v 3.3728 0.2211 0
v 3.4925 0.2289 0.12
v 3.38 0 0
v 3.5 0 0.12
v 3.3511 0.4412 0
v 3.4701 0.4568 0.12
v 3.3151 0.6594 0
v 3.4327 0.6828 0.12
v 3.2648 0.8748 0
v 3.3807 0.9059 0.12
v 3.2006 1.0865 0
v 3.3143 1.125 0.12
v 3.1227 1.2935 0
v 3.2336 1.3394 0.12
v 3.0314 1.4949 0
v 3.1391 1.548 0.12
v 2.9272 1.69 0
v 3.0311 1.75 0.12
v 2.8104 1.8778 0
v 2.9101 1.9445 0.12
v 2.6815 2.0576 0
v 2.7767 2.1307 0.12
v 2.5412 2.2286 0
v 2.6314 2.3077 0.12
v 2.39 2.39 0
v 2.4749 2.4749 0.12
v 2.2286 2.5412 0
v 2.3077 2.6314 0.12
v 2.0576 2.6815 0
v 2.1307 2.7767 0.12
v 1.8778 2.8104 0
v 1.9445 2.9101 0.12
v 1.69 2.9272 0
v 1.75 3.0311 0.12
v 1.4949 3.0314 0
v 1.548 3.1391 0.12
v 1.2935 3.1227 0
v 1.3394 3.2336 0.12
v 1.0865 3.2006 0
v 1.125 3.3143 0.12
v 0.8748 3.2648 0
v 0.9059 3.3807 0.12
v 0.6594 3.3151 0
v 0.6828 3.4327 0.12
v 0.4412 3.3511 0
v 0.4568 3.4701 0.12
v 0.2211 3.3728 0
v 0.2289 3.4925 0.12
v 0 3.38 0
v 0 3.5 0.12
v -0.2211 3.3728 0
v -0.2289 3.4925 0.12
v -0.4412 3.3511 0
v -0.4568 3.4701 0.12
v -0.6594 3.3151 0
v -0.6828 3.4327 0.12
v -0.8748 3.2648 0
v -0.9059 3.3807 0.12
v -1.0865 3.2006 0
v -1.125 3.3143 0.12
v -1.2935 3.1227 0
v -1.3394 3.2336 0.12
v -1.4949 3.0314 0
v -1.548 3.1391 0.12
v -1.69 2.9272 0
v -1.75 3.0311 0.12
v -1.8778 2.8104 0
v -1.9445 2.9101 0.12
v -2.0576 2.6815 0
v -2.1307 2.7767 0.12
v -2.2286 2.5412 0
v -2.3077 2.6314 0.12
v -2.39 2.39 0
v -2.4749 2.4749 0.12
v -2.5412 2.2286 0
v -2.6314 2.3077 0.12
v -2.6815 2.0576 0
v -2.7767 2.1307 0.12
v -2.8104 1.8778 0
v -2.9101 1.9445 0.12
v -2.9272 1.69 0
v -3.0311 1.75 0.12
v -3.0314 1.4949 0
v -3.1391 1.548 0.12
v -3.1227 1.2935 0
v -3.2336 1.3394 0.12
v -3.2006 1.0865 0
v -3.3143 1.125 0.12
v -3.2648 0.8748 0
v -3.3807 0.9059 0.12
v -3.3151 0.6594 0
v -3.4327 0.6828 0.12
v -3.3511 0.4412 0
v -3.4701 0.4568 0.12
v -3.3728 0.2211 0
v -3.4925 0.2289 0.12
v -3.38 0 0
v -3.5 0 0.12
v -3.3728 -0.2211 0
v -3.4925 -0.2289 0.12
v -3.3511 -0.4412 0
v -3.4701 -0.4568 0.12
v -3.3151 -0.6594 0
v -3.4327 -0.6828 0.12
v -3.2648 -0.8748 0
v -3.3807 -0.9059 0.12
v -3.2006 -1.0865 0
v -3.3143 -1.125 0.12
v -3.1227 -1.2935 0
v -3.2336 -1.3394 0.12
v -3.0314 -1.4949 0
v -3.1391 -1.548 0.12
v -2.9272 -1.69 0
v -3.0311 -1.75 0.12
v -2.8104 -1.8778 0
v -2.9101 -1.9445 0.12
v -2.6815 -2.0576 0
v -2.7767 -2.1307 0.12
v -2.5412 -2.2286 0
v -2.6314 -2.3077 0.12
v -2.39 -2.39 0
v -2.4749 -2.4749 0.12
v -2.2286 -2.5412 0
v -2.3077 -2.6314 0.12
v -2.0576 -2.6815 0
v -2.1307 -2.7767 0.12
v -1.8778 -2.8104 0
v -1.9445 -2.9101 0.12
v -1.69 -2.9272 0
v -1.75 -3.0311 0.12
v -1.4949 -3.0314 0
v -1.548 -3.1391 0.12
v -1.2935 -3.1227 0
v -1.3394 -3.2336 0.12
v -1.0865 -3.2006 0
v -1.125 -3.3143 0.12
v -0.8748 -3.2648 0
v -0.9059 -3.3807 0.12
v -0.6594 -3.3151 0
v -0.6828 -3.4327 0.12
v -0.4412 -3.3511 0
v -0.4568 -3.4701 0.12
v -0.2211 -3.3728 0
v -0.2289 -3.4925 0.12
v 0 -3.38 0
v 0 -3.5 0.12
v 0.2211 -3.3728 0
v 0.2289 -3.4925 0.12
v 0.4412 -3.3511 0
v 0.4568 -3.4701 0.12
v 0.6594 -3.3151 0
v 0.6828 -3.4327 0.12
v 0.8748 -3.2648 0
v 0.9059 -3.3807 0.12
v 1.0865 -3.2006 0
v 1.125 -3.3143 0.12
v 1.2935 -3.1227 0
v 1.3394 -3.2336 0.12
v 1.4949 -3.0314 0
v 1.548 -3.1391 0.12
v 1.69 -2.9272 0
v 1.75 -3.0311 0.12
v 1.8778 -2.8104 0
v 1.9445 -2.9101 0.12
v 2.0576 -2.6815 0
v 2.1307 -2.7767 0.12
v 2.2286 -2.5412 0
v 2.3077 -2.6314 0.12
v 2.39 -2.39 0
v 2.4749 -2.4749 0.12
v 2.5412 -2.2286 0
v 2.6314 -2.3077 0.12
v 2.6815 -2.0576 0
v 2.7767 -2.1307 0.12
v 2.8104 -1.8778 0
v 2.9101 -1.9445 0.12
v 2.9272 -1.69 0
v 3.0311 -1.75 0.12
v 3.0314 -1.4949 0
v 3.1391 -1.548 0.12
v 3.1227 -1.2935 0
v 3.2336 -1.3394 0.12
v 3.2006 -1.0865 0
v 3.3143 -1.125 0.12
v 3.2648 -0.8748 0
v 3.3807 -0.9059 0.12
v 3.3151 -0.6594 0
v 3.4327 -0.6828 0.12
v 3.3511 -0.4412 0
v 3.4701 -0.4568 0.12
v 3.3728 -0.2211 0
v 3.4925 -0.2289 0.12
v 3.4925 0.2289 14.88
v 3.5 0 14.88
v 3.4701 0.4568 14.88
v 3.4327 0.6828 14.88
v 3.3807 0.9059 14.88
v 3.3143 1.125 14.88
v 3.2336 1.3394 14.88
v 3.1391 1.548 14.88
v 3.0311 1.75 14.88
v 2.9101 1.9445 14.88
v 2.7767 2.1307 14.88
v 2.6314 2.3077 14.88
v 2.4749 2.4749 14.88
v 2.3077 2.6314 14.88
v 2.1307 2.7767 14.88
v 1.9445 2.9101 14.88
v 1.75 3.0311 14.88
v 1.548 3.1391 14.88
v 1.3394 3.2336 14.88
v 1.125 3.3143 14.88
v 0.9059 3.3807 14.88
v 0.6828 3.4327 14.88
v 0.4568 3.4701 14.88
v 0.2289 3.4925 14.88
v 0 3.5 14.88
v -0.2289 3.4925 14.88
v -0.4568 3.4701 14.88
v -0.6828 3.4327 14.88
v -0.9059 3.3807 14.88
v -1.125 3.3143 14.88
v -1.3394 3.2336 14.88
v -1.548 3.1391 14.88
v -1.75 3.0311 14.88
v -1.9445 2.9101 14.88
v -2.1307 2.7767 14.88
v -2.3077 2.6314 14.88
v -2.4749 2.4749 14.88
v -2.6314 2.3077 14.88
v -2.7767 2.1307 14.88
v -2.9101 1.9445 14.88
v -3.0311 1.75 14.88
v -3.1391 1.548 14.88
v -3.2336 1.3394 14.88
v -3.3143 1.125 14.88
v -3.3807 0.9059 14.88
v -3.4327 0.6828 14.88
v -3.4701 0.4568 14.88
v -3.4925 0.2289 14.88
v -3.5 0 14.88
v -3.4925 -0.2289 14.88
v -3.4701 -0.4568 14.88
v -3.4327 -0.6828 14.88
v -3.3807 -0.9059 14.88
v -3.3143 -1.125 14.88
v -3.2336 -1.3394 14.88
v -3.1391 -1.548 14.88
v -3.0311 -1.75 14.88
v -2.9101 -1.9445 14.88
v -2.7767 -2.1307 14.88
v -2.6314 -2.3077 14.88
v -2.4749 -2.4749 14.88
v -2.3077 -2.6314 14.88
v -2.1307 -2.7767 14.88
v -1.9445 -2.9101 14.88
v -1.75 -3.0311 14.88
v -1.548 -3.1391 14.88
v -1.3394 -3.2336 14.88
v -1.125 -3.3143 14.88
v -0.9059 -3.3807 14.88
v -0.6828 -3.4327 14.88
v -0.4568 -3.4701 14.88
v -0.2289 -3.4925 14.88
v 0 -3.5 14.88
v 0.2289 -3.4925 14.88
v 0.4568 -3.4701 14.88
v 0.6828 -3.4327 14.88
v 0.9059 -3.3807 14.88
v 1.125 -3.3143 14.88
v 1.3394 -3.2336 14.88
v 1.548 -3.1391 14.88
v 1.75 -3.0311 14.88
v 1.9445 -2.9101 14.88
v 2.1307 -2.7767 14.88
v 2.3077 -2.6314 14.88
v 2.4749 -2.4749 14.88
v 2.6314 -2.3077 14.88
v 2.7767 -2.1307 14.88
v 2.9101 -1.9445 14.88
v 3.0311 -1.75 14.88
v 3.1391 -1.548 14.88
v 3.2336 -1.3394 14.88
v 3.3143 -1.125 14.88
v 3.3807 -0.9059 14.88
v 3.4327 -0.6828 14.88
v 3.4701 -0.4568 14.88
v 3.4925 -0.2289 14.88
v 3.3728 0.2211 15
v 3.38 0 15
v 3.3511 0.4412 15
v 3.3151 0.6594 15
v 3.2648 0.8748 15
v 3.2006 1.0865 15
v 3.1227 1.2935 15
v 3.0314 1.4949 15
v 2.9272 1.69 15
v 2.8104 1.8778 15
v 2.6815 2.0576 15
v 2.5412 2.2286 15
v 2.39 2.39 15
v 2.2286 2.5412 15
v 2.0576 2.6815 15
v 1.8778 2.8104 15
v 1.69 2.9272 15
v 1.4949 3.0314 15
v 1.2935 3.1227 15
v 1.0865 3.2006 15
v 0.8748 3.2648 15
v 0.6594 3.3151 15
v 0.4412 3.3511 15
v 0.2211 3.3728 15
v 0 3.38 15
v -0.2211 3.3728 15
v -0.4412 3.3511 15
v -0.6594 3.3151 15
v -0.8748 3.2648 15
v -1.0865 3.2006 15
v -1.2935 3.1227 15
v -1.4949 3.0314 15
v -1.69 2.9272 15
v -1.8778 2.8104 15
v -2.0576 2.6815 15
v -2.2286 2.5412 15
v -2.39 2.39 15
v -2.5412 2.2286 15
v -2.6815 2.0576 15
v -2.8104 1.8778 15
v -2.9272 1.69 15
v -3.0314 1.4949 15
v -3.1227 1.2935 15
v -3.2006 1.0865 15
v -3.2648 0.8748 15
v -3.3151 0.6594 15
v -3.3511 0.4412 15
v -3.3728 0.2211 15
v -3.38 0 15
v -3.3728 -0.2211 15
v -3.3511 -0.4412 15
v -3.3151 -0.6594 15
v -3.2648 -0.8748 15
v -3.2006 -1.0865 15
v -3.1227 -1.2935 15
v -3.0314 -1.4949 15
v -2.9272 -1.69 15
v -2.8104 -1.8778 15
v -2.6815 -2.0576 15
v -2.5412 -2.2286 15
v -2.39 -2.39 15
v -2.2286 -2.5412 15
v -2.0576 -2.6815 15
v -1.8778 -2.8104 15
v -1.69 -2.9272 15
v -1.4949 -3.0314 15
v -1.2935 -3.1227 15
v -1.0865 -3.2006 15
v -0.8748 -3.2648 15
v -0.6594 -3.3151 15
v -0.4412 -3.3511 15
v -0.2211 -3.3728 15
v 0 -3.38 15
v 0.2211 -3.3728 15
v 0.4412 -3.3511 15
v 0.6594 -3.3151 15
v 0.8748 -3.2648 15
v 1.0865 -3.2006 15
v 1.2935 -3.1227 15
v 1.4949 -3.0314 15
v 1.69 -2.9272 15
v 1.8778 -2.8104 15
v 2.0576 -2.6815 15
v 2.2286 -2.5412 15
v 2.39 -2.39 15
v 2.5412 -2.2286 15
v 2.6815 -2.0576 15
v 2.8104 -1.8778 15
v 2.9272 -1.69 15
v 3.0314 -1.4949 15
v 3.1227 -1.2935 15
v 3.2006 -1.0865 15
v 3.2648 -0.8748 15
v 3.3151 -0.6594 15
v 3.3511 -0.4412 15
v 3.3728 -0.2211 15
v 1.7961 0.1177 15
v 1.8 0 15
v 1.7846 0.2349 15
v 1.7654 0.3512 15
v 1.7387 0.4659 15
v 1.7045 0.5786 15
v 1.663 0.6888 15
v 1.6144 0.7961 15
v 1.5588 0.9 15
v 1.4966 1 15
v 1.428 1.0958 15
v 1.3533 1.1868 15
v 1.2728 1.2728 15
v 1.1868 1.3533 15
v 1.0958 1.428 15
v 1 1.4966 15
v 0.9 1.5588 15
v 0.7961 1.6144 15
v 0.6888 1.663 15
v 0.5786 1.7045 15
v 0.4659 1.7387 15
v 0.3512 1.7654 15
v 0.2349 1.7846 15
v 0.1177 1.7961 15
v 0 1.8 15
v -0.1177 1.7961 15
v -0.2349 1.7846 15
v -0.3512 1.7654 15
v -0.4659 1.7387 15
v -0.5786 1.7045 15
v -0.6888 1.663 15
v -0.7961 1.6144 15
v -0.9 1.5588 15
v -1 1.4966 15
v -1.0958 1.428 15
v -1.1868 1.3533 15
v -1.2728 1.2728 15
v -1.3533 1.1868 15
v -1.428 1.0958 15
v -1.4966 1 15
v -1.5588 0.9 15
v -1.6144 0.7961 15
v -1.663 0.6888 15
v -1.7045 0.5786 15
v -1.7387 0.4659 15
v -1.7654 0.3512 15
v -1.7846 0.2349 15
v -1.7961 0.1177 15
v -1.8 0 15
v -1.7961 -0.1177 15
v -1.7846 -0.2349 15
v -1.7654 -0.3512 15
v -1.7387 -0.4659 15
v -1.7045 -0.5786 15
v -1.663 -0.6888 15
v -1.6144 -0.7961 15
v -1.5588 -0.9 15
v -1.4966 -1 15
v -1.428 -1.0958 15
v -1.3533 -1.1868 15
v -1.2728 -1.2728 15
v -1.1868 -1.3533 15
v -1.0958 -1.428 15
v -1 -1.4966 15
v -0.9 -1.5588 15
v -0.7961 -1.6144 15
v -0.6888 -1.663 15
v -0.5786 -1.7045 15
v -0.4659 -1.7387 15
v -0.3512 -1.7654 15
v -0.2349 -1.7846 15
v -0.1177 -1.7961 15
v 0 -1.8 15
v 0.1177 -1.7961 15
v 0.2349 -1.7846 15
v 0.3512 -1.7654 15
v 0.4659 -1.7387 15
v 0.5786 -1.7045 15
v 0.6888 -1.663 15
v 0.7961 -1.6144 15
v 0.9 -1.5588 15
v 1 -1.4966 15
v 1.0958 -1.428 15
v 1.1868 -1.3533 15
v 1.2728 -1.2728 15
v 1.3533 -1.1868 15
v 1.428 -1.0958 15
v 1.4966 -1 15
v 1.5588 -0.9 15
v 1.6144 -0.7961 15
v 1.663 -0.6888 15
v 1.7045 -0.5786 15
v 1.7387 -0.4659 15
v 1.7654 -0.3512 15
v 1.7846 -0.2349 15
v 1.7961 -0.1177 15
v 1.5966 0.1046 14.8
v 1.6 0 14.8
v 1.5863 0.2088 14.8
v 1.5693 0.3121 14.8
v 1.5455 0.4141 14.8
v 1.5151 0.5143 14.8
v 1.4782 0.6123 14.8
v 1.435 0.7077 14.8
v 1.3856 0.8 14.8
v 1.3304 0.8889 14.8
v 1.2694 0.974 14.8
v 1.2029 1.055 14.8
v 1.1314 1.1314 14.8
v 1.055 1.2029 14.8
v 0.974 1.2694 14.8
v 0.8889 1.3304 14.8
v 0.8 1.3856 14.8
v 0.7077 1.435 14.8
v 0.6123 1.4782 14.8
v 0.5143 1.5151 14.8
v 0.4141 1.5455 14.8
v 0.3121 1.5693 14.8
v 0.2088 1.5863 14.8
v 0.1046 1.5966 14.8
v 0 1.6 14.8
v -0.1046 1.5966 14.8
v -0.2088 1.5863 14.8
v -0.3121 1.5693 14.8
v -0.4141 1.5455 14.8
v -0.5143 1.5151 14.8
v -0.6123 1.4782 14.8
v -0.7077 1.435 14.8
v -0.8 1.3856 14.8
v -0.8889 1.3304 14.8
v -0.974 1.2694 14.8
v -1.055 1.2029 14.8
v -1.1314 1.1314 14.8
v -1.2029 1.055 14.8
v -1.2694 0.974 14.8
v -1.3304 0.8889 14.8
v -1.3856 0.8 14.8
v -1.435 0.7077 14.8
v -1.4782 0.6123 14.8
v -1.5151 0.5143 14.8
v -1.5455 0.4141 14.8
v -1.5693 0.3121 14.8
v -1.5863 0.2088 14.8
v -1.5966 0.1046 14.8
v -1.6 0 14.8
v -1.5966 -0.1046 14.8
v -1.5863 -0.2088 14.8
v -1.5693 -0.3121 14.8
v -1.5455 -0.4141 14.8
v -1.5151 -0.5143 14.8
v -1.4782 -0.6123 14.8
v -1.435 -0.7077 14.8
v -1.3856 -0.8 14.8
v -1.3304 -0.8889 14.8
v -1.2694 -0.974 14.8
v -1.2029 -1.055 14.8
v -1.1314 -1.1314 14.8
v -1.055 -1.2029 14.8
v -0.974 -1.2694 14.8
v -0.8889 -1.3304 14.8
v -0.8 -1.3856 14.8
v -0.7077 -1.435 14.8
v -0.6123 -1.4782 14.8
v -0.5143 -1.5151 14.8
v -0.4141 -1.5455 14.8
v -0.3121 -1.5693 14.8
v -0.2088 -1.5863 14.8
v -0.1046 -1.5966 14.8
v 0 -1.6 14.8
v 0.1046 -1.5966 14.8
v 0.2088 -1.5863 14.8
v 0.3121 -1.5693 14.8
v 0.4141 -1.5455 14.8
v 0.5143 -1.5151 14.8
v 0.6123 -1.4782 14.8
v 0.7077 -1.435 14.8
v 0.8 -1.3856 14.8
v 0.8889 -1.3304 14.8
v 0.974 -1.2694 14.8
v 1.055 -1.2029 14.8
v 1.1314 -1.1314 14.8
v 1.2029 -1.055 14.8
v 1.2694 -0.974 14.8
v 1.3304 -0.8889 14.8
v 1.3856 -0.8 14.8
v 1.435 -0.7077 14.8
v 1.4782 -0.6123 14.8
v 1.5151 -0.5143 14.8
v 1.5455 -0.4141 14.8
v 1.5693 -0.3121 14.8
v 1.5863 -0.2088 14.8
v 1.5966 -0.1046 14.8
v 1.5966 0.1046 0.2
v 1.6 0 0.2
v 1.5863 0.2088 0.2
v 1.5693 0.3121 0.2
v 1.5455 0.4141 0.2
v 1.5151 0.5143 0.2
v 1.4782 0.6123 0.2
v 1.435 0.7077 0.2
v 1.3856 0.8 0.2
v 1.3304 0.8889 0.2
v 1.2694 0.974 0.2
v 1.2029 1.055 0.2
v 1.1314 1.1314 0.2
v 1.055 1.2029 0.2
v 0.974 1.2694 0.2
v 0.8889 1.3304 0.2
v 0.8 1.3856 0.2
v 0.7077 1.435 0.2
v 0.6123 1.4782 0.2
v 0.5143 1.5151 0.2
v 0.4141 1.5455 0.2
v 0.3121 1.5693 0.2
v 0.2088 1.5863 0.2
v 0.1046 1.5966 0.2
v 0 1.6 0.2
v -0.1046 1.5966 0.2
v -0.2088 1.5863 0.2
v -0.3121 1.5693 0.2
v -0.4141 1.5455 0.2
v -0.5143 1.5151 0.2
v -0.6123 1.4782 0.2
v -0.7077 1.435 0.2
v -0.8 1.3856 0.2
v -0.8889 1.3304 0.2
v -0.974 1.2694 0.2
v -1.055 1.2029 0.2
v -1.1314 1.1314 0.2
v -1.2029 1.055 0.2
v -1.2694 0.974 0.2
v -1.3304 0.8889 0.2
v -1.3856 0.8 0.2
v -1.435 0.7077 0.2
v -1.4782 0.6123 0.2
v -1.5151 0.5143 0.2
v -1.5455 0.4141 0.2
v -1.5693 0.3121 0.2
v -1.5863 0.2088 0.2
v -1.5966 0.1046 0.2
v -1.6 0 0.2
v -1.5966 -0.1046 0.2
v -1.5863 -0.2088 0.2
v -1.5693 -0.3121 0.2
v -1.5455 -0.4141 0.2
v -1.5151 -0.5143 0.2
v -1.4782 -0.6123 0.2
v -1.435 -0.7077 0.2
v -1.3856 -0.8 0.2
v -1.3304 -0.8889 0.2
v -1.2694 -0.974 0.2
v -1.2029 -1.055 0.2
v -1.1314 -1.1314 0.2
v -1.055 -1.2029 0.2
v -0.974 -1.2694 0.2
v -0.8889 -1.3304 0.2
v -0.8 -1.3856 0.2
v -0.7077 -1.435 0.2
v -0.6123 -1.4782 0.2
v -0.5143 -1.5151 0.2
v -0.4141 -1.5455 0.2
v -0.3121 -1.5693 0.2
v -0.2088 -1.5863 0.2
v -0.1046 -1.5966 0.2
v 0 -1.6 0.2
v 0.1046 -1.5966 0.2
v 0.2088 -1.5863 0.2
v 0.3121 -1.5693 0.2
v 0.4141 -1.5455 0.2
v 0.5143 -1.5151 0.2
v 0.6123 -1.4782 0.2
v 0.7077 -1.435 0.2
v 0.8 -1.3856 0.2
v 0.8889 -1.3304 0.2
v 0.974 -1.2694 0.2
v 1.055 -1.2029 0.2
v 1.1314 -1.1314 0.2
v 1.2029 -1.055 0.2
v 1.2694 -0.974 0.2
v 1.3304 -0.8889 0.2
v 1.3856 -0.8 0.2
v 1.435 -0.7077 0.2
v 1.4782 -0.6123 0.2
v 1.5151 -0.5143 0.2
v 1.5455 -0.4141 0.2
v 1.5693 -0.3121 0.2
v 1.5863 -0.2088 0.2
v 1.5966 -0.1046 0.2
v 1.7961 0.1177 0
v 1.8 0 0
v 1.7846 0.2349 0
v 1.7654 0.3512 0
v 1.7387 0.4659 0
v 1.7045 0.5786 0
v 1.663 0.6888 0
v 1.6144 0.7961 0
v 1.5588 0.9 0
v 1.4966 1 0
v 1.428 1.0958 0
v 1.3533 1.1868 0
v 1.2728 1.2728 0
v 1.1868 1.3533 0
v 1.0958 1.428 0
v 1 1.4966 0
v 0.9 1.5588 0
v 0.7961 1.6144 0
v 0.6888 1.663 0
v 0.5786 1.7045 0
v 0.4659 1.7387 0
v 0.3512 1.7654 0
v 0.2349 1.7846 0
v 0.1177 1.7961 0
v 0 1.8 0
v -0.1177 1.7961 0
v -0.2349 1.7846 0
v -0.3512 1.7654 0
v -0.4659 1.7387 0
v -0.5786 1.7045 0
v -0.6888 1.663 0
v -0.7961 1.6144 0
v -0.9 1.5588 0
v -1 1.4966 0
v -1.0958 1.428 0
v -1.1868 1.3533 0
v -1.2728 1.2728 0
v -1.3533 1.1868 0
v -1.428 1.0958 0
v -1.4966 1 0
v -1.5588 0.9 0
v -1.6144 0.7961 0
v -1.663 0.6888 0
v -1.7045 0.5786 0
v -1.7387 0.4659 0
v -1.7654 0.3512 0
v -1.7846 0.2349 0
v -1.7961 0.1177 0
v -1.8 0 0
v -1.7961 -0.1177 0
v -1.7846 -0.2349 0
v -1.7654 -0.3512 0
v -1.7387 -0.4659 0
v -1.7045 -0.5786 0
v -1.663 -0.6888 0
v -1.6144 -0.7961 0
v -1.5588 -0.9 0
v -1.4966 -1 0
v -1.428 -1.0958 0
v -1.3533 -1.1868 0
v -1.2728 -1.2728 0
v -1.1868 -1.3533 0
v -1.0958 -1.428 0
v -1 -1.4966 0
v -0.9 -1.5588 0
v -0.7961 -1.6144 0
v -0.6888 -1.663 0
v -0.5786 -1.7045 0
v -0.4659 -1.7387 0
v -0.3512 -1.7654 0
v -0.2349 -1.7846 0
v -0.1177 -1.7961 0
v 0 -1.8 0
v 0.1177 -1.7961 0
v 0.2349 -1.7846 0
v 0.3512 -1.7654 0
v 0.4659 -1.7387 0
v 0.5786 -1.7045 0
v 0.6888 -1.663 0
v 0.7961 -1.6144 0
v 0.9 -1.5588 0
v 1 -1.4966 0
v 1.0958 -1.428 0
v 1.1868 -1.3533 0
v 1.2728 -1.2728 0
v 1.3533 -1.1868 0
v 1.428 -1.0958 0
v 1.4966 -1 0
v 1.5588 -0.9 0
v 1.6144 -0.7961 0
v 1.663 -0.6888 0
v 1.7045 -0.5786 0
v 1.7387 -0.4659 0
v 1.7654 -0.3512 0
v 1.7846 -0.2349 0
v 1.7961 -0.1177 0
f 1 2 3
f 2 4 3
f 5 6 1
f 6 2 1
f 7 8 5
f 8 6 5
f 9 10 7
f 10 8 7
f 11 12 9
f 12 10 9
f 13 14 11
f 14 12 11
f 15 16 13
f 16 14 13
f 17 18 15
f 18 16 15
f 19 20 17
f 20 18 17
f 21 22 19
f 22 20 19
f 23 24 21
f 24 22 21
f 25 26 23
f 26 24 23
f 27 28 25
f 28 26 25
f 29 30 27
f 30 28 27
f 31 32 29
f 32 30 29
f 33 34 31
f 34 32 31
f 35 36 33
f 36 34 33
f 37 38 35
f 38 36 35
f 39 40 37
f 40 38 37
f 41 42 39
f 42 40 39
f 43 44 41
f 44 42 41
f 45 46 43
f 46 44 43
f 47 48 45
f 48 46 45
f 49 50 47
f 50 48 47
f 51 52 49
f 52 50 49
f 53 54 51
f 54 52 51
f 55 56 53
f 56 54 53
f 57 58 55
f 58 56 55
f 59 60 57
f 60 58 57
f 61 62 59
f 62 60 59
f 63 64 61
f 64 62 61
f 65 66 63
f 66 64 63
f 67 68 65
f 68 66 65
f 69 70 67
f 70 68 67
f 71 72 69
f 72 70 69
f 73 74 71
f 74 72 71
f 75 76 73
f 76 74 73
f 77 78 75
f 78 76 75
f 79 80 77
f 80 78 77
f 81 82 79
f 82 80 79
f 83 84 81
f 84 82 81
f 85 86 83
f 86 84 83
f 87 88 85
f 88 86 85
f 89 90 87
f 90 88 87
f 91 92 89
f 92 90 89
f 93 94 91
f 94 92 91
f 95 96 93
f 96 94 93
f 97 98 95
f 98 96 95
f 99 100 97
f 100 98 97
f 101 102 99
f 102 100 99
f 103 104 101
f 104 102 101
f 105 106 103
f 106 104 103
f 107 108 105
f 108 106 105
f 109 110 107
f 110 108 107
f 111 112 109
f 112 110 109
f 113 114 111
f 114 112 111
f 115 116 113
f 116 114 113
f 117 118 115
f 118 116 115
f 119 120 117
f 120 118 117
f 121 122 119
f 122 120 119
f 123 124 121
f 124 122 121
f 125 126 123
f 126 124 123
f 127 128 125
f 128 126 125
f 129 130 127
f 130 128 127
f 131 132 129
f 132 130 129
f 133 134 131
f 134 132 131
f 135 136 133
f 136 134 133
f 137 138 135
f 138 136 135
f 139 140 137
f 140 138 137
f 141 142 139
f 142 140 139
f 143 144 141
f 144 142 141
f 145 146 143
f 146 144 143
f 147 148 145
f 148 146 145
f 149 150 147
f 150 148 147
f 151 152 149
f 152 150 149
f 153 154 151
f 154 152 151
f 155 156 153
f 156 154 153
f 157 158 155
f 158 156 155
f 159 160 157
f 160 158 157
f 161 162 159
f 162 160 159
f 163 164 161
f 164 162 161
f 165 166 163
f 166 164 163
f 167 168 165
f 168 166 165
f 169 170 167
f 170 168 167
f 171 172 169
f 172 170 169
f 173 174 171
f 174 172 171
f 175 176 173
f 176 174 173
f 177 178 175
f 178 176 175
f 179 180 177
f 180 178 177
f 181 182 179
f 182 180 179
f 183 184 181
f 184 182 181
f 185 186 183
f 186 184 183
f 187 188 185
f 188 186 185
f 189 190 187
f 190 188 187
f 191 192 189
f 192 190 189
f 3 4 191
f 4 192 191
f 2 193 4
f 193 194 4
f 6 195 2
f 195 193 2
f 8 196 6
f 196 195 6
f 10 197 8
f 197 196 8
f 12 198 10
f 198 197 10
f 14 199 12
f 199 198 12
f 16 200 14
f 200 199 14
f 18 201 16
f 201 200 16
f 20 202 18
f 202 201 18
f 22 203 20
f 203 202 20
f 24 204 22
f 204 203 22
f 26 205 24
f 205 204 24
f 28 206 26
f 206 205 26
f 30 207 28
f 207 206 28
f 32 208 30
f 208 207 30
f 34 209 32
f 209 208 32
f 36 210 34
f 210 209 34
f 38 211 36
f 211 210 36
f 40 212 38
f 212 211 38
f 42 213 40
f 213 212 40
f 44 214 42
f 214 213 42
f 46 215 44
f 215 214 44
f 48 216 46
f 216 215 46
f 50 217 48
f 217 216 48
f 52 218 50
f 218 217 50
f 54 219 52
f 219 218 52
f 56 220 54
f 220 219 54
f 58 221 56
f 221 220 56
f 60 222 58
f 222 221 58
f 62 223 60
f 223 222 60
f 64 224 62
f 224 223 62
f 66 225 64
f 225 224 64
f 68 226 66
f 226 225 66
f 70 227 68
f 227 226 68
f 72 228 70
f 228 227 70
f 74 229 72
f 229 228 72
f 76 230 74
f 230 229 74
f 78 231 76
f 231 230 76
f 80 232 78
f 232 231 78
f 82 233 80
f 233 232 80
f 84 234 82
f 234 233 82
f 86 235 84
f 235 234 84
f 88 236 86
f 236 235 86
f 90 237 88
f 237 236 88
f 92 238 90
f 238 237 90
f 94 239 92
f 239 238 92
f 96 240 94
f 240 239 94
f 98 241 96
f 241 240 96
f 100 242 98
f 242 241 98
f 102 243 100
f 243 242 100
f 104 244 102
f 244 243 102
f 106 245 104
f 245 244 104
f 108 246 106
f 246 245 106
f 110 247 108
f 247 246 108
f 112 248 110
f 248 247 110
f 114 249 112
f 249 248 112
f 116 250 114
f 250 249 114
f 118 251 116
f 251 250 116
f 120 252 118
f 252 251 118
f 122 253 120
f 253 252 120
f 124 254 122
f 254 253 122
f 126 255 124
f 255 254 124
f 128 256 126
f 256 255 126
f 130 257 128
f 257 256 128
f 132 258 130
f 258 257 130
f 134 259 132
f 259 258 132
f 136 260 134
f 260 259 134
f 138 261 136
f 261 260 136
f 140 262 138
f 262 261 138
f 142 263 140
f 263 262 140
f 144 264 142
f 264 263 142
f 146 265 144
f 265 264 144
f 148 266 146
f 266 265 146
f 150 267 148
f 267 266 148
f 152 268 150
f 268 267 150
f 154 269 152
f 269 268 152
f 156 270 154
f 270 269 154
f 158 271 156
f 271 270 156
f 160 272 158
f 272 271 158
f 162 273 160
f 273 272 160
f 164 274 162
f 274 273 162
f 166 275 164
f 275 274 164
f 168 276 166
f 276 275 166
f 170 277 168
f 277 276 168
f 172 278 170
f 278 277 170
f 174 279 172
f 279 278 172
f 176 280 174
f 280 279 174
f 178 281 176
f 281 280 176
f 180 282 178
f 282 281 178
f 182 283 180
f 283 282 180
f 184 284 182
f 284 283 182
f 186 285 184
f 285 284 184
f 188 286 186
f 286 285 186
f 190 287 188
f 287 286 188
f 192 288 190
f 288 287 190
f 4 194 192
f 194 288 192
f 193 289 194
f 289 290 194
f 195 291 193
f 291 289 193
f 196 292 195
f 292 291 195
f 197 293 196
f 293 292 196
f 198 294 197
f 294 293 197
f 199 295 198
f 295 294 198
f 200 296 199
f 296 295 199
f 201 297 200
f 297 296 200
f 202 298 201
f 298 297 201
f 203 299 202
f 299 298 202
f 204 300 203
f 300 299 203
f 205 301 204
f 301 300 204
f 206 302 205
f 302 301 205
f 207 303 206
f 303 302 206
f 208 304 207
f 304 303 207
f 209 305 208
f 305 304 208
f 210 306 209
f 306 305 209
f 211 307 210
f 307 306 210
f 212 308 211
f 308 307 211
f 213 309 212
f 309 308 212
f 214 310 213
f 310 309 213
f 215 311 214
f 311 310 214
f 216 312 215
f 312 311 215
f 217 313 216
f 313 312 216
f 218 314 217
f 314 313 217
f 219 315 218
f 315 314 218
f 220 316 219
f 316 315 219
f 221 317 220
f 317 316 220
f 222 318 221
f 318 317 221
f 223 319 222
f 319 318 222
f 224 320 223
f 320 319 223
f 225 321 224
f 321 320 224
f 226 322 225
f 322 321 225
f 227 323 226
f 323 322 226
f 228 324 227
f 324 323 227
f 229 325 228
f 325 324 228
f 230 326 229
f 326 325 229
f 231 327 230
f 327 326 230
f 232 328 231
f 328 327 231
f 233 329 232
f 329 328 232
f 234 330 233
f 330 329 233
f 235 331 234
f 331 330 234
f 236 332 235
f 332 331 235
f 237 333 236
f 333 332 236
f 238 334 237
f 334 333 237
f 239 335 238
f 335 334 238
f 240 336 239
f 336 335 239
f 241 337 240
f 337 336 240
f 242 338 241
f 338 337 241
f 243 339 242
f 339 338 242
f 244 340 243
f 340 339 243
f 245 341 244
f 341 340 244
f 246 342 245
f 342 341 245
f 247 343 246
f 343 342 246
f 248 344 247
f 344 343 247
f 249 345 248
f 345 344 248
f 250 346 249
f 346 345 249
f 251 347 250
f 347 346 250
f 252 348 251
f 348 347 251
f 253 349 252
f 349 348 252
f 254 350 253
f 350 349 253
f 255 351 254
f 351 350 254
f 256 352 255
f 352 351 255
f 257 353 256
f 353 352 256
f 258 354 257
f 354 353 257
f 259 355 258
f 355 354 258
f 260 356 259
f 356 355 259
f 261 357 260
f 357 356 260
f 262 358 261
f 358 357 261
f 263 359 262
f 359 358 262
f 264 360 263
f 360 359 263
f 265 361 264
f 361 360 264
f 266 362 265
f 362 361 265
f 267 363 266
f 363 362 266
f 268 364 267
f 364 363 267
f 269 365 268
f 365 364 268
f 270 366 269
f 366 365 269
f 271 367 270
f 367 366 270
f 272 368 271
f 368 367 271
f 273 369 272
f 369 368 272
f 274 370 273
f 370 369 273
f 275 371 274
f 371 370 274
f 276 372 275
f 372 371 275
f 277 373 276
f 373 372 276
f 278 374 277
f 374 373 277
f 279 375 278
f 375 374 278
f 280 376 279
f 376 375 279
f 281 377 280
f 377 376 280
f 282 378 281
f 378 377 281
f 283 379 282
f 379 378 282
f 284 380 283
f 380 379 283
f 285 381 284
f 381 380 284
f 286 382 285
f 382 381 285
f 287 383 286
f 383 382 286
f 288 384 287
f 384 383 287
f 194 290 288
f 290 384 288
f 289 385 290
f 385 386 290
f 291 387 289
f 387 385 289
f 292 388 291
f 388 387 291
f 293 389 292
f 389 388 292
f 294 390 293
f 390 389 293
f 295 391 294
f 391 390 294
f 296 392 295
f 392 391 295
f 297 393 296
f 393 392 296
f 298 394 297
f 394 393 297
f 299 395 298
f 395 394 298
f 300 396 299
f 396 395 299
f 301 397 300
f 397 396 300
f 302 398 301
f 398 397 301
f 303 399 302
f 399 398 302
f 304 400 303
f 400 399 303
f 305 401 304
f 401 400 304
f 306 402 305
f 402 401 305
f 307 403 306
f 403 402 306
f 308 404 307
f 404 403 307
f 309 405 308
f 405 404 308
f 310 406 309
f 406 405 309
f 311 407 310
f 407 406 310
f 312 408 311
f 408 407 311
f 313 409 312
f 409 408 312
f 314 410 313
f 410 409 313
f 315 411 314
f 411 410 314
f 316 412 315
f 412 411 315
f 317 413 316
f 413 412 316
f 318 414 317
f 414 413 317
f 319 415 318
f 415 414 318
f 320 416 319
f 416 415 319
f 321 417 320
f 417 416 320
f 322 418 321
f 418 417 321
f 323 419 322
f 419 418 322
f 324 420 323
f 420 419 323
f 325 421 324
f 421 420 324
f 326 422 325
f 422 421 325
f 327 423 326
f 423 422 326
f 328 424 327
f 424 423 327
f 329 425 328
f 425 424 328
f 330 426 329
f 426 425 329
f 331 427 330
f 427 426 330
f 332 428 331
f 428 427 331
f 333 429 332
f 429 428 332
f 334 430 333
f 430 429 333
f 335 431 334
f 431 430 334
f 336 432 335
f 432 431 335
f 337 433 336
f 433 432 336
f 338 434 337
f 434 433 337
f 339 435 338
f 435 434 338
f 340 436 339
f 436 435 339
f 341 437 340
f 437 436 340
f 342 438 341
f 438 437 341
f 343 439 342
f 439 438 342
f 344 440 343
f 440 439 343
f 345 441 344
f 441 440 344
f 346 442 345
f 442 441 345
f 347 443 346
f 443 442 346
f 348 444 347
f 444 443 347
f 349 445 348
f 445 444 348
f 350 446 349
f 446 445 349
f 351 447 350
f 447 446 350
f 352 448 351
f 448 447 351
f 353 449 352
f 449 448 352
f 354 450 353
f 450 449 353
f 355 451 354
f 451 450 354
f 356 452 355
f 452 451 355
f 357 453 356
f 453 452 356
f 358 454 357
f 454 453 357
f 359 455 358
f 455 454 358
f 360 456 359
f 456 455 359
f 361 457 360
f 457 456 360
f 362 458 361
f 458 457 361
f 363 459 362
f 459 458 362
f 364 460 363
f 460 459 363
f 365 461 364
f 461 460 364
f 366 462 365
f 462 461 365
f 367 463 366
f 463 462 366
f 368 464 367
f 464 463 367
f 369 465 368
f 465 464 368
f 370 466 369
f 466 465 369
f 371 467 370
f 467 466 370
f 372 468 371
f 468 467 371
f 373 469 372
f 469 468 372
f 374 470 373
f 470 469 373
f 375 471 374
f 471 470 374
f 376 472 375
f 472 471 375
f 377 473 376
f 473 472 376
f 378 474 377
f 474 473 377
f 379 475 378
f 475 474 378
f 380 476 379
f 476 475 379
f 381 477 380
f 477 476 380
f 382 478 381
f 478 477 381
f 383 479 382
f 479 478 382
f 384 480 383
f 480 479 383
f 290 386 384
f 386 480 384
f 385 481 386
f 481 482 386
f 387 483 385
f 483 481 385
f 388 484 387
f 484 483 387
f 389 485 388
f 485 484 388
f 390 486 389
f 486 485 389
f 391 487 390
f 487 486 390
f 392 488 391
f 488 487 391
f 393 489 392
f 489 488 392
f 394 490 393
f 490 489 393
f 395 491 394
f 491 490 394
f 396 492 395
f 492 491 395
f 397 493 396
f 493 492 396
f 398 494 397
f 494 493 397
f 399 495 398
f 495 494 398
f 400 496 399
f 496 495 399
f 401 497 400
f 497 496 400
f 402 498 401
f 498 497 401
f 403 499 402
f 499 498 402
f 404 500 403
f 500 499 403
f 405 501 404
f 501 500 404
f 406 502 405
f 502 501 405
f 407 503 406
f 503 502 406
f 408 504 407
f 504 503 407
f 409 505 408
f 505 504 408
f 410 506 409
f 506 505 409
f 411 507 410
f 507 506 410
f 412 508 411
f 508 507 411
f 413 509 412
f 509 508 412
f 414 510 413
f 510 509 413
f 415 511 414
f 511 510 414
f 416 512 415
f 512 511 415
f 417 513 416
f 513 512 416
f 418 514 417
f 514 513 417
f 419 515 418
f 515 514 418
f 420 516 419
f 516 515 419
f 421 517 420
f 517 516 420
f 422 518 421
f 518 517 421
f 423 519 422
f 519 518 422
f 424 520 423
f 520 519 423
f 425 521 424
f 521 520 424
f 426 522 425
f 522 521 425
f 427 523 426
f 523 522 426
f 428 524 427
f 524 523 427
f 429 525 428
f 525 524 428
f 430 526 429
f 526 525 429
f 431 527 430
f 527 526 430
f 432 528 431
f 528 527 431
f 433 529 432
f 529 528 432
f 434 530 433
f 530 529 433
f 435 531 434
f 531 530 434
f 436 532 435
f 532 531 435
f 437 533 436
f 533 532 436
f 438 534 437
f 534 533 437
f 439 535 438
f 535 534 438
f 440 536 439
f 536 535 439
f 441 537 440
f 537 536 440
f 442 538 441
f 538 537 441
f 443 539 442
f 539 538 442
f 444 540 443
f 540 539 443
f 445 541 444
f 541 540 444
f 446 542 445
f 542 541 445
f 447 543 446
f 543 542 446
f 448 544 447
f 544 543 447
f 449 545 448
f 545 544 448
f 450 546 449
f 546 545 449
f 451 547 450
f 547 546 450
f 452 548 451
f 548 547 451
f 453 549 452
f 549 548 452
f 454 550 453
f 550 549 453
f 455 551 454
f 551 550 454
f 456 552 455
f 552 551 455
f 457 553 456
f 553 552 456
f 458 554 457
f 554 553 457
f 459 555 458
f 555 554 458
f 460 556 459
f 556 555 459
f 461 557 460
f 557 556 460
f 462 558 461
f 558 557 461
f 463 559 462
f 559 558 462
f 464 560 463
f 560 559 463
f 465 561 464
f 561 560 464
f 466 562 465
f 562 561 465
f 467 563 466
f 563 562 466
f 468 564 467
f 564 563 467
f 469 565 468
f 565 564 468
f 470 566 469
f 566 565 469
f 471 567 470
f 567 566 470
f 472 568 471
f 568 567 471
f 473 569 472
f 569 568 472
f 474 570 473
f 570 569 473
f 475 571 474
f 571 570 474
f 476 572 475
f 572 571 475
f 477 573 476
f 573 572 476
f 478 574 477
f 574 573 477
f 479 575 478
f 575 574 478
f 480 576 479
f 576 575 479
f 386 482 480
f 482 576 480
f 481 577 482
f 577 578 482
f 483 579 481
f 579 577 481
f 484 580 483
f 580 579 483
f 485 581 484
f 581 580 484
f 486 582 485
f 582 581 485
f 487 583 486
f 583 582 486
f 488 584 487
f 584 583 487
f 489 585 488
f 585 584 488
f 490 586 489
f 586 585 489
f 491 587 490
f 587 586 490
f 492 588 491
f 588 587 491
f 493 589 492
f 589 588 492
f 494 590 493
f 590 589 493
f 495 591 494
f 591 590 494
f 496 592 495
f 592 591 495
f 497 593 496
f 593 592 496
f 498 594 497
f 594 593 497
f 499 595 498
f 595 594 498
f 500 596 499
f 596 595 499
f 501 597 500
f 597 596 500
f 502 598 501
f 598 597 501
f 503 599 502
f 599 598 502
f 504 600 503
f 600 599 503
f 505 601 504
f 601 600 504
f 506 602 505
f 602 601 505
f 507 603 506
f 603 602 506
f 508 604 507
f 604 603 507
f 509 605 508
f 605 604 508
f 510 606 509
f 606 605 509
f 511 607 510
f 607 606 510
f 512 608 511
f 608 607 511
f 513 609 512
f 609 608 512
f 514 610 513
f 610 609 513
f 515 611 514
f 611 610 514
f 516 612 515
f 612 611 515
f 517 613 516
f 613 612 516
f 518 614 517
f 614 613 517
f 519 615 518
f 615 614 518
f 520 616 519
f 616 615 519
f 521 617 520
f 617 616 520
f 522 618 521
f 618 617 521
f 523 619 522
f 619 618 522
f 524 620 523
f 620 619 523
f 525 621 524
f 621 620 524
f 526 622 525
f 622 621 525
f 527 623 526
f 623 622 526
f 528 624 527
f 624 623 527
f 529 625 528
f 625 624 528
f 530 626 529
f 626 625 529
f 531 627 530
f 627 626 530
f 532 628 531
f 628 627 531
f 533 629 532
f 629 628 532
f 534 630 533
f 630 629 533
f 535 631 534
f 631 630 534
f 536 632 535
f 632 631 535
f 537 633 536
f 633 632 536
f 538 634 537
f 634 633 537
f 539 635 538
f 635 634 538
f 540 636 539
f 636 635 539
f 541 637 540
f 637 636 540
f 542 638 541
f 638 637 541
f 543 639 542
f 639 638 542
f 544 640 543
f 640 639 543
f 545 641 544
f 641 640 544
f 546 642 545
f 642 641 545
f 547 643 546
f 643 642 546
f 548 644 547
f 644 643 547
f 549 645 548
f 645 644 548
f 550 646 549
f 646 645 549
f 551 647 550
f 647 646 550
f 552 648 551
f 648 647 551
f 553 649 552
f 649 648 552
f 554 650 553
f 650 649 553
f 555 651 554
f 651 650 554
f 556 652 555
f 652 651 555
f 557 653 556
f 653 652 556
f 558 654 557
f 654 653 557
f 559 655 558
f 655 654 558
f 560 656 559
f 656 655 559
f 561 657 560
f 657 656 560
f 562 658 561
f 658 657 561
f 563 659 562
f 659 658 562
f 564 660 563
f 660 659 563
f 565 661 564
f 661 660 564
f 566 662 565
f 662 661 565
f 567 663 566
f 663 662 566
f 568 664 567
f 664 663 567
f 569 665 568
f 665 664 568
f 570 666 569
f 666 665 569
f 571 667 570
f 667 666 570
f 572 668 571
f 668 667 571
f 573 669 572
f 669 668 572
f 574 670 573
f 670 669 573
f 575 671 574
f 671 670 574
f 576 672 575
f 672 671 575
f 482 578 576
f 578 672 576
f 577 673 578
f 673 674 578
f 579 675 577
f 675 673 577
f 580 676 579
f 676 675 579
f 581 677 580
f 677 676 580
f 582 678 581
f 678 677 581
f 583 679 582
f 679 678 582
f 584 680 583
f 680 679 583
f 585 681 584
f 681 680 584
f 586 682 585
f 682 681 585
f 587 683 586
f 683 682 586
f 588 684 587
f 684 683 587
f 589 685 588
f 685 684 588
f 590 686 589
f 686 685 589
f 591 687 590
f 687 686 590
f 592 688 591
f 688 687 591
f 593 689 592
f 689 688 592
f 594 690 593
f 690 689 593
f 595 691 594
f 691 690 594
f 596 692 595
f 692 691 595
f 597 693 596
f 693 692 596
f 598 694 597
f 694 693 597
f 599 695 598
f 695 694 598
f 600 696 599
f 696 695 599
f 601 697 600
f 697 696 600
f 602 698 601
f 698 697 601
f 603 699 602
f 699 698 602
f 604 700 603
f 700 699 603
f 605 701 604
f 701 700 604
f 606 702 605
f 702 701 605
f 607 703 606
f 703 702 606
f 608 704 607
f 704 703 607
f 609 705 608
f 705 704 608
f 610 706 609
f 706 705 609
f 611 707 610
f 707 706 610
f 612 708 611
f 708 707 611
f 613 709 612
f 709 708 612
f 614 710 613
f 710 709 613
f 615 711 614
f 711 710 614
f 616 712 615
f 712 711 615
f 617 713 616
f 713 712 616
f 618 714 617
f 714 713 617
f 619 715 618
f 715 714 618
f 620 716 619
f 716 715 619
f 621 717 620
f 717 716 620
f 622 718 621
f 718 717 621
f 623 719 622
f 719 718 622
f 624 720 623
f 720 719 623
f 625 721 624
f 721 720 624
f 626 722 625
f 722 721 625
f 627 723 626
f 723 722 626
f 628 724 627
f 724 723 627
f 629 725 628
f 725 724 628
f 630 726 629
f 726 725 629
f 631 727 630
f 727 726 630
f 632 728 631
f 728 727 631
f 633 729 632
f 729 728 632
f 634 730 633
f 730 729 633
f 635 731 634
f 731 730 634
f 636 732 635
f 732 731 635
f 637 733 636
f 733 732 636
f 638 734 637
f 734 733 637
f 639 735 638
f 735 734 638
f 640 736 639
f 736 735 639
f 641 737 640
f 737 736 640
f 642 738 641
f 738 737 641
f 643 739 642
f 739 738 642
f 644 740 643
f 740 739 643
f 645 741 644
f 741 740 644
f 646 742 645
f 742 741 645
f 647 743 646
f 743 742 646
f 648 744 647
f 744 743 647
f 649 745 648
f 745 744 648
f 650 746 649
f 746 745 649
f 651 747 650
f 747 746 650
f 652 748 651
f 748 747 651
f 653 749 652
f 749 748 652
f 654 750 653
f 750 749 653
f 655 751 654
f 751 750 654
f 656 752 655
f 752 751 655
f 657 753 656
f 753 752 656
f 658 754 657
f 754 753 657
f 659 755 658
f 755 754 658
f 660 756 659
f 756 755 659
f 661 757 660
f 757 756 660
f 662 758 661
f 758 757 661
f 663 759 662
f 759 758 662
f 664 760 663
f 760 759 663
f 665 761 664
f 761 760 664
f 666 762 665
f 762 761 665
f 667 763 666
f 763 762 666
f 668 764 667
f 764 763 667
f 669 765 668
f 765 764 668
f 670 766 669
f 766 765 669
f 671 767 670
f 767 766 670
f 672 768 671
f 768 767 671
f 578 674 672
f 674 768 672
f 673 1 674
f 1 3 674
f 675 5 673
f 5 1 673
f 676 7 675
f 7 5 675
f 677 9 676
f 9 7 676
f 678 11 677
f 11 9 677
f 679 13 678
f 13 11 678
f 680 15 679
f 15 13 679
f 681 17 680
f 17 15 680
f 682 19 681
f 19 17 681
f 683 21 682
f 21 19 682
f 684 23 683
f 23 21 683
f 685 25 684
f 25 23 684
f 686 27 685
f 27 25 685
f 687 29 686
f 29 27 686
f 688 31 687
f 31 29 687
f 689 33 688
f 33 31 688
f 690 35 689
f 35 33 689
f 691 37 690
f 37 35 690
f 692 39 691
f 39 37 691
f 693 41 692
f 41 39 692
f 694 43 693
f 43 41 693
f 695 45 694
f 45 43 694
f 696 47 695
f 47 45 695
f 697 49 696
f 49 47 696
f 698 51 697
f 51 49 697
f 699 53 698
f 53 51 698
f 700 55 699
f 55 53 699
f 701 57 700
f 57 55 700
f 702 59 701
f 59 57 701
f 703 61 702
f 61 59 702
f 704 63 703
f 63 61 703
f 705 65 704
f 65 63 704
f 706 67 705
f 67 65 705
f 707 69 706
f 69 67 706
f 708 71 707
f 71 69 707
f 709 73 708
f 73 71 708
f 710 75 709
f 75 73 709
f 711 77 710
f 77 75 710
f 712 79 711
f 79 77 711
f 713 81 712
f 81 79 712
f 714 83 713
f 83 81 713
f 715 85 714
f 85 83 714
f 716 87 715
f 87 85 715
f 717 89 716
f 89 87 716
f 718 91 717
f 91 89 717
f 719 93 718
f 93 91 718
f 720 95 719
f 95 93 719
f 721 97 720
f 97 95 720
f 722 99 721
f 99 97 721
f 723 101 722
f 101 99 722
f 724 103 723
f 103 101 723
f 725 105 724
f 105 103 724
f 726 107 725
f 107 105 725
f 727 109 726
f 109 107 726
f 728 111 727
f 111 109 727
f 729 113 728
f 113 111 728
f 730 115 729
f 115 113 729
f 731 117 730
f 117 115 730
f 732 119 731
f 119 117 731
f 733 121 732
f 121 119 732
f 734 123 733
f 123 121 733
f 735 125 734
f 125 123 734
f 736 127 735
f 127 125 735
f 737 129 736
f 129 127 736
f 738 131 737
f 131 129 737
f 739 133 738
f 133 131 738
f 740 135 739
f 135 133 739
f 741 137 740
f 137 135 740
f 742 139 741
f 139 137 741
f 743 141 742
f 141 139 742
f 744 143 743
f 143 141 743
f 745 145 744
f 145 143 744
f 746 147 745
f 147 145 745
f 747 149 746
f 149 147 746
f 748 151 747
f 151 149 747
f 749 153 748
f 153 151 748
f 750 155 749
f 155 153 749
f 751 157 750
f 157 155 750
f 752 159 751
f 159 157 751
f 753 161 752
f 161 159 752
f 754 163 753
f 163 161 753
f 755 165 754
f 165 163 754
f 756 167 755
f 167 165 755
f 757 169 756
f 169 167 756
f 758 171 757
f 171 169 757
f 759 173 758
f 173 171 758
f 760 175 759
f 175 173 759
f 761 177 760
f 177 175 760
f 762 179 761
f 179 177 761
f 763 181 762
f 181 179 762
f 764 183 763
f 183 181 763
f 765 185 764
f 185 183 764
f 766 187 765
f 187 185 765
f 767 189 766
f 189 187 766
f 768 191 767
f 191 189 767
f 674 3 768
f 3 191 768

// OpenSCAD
// OOMP generic catalogue model; units: mm.
// Stud length is additional to body depth. Tapping depths are model assumptions.
variant = "full"; // [full, display]
family = "spacer";
connection_type = "plain";
depth_mm = 15;
stud_length_mm = 0;
tapped_depth_mm = 0;
bore_mm = 3.2;
outer_diameter_mm = 7;
across_flats_mm = 6;
thread_nominal_diameter_mm = 3;
thread_pitch_mm = 0.5;
edge_chamfer_mm = 0.12;
mouth_chamfer_mm = 0.2;
angular_segments = 96;
samples_per_pitch = 16;

// Boundary travels up the outside, then down any tapped/plain bore.
// Equal-height rings at shoulders form the annular shoulder faces.
n = angular_segments;
threaded = family == "standoff";
has_stud = connection_type == "stud_to_tapped" || connection_type == "stud_to_stud";
two_studs = connection_type == "stud_to_stud";
through = !threaded || connection_type == "tapped_to_tapped";
pitch = thread_pitch_mm;
diameter = threaded ? thread_nominal_diameter_mm : bore_mm;
minor = diameter - 5*sqrt(3)*pitch/8;
transition = mouth_chamfer_mm + (threaded ? 5*sqrt(3)*pitch/16 : 0);
tip_chamfer = mouth_chamfer_mm + 17*sqrt(3)*pitch/48;
function sorted(v) = len(v)<=1 ? v : let(p=v[0])
    concat(sorted([for(x=v) if(x<p-1e-8) x]), [p], sorted([for(x=v) if(x>p+1e-8) x]));
function reverse(v) = [for(i=[len(v)-1:-1:0]) v[i]];
function theta(i) = i*360/n;
function fract(x) = x-floor(x);
function phase_distance(i,z) = abs(fract(z/pitch-theta(i)/360+0.5)-0.5);
function thread_r(i,z) = minor/2 + min(5*sqrt(3)*pitch/16,
    max(0,(phase_distance(i,z)-0.125)*pitch*sqrt(3)));
function stud_r(i,z,tip) = min(diameter/2 - (variant=="full" ?
    min(17*sqrt(3)*pitch/48,max(0,(phase_distance(i,z)-0.0625)*pitch*sqrt(3))) : 0),
    diameter/2-tip_chamfer+abs(z-tip));
function body_r(i,z) = (threaded ? across_flats_mm/2/cos(theta(i)%60-30) : outer_diameter_mm/2)
    - max(0,edge_chamfer_mm-min(z,depth_mm-z));
function bore_r(i,z) = max(threaded ? (variant=="full" ? thread_r(i,z) : minor/2) : diameter/2,
    diameter/2+mouth_chamfer_mm-(through ? min(z,depth_mm-z) : depth_mm-z));
function stud_z(a,b,tip) = let(count=variant=="full" ? ceil(stud_length_mm/pitch*samples_per_pitch) : 1)
    sorted(concat([for(i=[0:count]) a+(b-a)*i/count], [tip==a ? tip+tip_chamfer : tip-tip_chamfer]));
body_z = sorted([0,edge_chamfer_mm,depth_mm-edge_chamfer_mm,depth_mm]);
low = through ? 0 : depth_mm-tapped_depth_mm;
count = threaded && variant=="full" ? ceil((depth_mm-low)/pitch*samples_per_pitch) : 1;
bore_z = two_studs ? [] : reverse(sorted(concat(
    [for(i=[0:count]) low+(depth_mm-low)*i/count],
    [depth_mm-mouth_chamfer_mm,depth_mm-transition],
    through ? [mouth_chamfer_mm,transition] : [])));
// Ring descriptors: [height, kind, tip]. Kind: 0 body, 1 stud, 2 bore.
rings = concat(
    has_stud ? [for(z=stud_z(-stud_length_mm,0,-stud_length_mm)) [z,1,-stud_length_mm]] : [],
    [for(z=body_z) [z,0,0]],
    two_studs ? [for(z=stud_z(depth_mm,depth_mm+stud_length_mm,depth_mm+stud_length_mm)) [z,1,depth_mm+stud_length_mm]] : [],
    [for(z=bore_z) [z,2,0]]);
function radius(i,ring) = ring[1]==0 ? body_r(i,ring[0]) :
    ring[1]==1 ? stud_r(i,ring[0],ring[2]) : bore_r(i,ring[0]);
points = concat([for(ring=rings) for(i=[0:n-1])
    [radius(i,ring)*cos(theta(i)),radius(i,ring)*sin(theta(i)),ring[0]]],
    through ? [] : [[0,0,rings[0][0]],[0,0,rings[len(rings)-1][0]]]);
center = len(rings)*n;
last = (len(rings)-1)*n;
// OpenSCAD winding is opposite to STL winding.
faces = concat(
    [for(j=[0:len(rings)-(through ? 1 : 2)]) for(i=[0:n-1]) each
        let(a=j*n+i,b=j*n+(i+1)%n,c=((j+1)%len(rings))*n+(i+1)%n,d=((j+1)%len(rings))*n+i)
        [[a,c,b],[a,d,c]]],
    through ? [] : [for(i=[0:n-1]) each let(k=(i+1)%n)
        [[center,i,k],[center+1,last+k,last+i]]]);
assert(family=="spacer" || family=="standoff");
assert(!threaded || connection_type=="tapped_to_tapped" || has_stud);
assert(depth_mm>0 && diameter>0 && pitch>0);
assert(variant=="full" || variant=="display");
assert(n>=24 && n%12==0 && samples_per_pitch>=8);
assert(mouth_chamfer_mm>0 && mouth_chamfer_mm<depth_mm/2);
assert(edge_chamfer_mm>=0 && edge_chamfer_mm<depth_mm/2);
assert(diameter+4*max(mouth_chamfer_mm,edge_chamfer_mm) < (threaded ? across_flats_mm : outer_diameter_mm));
assert(!has_stud || stud_length_mm>2*mouth_chamfer_mm);
assert(!through || !threaded || 2*transition<depth_mm);
assert(connection_type!="stud_to_tapped" || (tapped_depth_mm>transition && tapped_depth_mm<depth_mm));
color([0.86,0.85,0.81]) polyhedron(points=points,faces=faces,convexity=20);
